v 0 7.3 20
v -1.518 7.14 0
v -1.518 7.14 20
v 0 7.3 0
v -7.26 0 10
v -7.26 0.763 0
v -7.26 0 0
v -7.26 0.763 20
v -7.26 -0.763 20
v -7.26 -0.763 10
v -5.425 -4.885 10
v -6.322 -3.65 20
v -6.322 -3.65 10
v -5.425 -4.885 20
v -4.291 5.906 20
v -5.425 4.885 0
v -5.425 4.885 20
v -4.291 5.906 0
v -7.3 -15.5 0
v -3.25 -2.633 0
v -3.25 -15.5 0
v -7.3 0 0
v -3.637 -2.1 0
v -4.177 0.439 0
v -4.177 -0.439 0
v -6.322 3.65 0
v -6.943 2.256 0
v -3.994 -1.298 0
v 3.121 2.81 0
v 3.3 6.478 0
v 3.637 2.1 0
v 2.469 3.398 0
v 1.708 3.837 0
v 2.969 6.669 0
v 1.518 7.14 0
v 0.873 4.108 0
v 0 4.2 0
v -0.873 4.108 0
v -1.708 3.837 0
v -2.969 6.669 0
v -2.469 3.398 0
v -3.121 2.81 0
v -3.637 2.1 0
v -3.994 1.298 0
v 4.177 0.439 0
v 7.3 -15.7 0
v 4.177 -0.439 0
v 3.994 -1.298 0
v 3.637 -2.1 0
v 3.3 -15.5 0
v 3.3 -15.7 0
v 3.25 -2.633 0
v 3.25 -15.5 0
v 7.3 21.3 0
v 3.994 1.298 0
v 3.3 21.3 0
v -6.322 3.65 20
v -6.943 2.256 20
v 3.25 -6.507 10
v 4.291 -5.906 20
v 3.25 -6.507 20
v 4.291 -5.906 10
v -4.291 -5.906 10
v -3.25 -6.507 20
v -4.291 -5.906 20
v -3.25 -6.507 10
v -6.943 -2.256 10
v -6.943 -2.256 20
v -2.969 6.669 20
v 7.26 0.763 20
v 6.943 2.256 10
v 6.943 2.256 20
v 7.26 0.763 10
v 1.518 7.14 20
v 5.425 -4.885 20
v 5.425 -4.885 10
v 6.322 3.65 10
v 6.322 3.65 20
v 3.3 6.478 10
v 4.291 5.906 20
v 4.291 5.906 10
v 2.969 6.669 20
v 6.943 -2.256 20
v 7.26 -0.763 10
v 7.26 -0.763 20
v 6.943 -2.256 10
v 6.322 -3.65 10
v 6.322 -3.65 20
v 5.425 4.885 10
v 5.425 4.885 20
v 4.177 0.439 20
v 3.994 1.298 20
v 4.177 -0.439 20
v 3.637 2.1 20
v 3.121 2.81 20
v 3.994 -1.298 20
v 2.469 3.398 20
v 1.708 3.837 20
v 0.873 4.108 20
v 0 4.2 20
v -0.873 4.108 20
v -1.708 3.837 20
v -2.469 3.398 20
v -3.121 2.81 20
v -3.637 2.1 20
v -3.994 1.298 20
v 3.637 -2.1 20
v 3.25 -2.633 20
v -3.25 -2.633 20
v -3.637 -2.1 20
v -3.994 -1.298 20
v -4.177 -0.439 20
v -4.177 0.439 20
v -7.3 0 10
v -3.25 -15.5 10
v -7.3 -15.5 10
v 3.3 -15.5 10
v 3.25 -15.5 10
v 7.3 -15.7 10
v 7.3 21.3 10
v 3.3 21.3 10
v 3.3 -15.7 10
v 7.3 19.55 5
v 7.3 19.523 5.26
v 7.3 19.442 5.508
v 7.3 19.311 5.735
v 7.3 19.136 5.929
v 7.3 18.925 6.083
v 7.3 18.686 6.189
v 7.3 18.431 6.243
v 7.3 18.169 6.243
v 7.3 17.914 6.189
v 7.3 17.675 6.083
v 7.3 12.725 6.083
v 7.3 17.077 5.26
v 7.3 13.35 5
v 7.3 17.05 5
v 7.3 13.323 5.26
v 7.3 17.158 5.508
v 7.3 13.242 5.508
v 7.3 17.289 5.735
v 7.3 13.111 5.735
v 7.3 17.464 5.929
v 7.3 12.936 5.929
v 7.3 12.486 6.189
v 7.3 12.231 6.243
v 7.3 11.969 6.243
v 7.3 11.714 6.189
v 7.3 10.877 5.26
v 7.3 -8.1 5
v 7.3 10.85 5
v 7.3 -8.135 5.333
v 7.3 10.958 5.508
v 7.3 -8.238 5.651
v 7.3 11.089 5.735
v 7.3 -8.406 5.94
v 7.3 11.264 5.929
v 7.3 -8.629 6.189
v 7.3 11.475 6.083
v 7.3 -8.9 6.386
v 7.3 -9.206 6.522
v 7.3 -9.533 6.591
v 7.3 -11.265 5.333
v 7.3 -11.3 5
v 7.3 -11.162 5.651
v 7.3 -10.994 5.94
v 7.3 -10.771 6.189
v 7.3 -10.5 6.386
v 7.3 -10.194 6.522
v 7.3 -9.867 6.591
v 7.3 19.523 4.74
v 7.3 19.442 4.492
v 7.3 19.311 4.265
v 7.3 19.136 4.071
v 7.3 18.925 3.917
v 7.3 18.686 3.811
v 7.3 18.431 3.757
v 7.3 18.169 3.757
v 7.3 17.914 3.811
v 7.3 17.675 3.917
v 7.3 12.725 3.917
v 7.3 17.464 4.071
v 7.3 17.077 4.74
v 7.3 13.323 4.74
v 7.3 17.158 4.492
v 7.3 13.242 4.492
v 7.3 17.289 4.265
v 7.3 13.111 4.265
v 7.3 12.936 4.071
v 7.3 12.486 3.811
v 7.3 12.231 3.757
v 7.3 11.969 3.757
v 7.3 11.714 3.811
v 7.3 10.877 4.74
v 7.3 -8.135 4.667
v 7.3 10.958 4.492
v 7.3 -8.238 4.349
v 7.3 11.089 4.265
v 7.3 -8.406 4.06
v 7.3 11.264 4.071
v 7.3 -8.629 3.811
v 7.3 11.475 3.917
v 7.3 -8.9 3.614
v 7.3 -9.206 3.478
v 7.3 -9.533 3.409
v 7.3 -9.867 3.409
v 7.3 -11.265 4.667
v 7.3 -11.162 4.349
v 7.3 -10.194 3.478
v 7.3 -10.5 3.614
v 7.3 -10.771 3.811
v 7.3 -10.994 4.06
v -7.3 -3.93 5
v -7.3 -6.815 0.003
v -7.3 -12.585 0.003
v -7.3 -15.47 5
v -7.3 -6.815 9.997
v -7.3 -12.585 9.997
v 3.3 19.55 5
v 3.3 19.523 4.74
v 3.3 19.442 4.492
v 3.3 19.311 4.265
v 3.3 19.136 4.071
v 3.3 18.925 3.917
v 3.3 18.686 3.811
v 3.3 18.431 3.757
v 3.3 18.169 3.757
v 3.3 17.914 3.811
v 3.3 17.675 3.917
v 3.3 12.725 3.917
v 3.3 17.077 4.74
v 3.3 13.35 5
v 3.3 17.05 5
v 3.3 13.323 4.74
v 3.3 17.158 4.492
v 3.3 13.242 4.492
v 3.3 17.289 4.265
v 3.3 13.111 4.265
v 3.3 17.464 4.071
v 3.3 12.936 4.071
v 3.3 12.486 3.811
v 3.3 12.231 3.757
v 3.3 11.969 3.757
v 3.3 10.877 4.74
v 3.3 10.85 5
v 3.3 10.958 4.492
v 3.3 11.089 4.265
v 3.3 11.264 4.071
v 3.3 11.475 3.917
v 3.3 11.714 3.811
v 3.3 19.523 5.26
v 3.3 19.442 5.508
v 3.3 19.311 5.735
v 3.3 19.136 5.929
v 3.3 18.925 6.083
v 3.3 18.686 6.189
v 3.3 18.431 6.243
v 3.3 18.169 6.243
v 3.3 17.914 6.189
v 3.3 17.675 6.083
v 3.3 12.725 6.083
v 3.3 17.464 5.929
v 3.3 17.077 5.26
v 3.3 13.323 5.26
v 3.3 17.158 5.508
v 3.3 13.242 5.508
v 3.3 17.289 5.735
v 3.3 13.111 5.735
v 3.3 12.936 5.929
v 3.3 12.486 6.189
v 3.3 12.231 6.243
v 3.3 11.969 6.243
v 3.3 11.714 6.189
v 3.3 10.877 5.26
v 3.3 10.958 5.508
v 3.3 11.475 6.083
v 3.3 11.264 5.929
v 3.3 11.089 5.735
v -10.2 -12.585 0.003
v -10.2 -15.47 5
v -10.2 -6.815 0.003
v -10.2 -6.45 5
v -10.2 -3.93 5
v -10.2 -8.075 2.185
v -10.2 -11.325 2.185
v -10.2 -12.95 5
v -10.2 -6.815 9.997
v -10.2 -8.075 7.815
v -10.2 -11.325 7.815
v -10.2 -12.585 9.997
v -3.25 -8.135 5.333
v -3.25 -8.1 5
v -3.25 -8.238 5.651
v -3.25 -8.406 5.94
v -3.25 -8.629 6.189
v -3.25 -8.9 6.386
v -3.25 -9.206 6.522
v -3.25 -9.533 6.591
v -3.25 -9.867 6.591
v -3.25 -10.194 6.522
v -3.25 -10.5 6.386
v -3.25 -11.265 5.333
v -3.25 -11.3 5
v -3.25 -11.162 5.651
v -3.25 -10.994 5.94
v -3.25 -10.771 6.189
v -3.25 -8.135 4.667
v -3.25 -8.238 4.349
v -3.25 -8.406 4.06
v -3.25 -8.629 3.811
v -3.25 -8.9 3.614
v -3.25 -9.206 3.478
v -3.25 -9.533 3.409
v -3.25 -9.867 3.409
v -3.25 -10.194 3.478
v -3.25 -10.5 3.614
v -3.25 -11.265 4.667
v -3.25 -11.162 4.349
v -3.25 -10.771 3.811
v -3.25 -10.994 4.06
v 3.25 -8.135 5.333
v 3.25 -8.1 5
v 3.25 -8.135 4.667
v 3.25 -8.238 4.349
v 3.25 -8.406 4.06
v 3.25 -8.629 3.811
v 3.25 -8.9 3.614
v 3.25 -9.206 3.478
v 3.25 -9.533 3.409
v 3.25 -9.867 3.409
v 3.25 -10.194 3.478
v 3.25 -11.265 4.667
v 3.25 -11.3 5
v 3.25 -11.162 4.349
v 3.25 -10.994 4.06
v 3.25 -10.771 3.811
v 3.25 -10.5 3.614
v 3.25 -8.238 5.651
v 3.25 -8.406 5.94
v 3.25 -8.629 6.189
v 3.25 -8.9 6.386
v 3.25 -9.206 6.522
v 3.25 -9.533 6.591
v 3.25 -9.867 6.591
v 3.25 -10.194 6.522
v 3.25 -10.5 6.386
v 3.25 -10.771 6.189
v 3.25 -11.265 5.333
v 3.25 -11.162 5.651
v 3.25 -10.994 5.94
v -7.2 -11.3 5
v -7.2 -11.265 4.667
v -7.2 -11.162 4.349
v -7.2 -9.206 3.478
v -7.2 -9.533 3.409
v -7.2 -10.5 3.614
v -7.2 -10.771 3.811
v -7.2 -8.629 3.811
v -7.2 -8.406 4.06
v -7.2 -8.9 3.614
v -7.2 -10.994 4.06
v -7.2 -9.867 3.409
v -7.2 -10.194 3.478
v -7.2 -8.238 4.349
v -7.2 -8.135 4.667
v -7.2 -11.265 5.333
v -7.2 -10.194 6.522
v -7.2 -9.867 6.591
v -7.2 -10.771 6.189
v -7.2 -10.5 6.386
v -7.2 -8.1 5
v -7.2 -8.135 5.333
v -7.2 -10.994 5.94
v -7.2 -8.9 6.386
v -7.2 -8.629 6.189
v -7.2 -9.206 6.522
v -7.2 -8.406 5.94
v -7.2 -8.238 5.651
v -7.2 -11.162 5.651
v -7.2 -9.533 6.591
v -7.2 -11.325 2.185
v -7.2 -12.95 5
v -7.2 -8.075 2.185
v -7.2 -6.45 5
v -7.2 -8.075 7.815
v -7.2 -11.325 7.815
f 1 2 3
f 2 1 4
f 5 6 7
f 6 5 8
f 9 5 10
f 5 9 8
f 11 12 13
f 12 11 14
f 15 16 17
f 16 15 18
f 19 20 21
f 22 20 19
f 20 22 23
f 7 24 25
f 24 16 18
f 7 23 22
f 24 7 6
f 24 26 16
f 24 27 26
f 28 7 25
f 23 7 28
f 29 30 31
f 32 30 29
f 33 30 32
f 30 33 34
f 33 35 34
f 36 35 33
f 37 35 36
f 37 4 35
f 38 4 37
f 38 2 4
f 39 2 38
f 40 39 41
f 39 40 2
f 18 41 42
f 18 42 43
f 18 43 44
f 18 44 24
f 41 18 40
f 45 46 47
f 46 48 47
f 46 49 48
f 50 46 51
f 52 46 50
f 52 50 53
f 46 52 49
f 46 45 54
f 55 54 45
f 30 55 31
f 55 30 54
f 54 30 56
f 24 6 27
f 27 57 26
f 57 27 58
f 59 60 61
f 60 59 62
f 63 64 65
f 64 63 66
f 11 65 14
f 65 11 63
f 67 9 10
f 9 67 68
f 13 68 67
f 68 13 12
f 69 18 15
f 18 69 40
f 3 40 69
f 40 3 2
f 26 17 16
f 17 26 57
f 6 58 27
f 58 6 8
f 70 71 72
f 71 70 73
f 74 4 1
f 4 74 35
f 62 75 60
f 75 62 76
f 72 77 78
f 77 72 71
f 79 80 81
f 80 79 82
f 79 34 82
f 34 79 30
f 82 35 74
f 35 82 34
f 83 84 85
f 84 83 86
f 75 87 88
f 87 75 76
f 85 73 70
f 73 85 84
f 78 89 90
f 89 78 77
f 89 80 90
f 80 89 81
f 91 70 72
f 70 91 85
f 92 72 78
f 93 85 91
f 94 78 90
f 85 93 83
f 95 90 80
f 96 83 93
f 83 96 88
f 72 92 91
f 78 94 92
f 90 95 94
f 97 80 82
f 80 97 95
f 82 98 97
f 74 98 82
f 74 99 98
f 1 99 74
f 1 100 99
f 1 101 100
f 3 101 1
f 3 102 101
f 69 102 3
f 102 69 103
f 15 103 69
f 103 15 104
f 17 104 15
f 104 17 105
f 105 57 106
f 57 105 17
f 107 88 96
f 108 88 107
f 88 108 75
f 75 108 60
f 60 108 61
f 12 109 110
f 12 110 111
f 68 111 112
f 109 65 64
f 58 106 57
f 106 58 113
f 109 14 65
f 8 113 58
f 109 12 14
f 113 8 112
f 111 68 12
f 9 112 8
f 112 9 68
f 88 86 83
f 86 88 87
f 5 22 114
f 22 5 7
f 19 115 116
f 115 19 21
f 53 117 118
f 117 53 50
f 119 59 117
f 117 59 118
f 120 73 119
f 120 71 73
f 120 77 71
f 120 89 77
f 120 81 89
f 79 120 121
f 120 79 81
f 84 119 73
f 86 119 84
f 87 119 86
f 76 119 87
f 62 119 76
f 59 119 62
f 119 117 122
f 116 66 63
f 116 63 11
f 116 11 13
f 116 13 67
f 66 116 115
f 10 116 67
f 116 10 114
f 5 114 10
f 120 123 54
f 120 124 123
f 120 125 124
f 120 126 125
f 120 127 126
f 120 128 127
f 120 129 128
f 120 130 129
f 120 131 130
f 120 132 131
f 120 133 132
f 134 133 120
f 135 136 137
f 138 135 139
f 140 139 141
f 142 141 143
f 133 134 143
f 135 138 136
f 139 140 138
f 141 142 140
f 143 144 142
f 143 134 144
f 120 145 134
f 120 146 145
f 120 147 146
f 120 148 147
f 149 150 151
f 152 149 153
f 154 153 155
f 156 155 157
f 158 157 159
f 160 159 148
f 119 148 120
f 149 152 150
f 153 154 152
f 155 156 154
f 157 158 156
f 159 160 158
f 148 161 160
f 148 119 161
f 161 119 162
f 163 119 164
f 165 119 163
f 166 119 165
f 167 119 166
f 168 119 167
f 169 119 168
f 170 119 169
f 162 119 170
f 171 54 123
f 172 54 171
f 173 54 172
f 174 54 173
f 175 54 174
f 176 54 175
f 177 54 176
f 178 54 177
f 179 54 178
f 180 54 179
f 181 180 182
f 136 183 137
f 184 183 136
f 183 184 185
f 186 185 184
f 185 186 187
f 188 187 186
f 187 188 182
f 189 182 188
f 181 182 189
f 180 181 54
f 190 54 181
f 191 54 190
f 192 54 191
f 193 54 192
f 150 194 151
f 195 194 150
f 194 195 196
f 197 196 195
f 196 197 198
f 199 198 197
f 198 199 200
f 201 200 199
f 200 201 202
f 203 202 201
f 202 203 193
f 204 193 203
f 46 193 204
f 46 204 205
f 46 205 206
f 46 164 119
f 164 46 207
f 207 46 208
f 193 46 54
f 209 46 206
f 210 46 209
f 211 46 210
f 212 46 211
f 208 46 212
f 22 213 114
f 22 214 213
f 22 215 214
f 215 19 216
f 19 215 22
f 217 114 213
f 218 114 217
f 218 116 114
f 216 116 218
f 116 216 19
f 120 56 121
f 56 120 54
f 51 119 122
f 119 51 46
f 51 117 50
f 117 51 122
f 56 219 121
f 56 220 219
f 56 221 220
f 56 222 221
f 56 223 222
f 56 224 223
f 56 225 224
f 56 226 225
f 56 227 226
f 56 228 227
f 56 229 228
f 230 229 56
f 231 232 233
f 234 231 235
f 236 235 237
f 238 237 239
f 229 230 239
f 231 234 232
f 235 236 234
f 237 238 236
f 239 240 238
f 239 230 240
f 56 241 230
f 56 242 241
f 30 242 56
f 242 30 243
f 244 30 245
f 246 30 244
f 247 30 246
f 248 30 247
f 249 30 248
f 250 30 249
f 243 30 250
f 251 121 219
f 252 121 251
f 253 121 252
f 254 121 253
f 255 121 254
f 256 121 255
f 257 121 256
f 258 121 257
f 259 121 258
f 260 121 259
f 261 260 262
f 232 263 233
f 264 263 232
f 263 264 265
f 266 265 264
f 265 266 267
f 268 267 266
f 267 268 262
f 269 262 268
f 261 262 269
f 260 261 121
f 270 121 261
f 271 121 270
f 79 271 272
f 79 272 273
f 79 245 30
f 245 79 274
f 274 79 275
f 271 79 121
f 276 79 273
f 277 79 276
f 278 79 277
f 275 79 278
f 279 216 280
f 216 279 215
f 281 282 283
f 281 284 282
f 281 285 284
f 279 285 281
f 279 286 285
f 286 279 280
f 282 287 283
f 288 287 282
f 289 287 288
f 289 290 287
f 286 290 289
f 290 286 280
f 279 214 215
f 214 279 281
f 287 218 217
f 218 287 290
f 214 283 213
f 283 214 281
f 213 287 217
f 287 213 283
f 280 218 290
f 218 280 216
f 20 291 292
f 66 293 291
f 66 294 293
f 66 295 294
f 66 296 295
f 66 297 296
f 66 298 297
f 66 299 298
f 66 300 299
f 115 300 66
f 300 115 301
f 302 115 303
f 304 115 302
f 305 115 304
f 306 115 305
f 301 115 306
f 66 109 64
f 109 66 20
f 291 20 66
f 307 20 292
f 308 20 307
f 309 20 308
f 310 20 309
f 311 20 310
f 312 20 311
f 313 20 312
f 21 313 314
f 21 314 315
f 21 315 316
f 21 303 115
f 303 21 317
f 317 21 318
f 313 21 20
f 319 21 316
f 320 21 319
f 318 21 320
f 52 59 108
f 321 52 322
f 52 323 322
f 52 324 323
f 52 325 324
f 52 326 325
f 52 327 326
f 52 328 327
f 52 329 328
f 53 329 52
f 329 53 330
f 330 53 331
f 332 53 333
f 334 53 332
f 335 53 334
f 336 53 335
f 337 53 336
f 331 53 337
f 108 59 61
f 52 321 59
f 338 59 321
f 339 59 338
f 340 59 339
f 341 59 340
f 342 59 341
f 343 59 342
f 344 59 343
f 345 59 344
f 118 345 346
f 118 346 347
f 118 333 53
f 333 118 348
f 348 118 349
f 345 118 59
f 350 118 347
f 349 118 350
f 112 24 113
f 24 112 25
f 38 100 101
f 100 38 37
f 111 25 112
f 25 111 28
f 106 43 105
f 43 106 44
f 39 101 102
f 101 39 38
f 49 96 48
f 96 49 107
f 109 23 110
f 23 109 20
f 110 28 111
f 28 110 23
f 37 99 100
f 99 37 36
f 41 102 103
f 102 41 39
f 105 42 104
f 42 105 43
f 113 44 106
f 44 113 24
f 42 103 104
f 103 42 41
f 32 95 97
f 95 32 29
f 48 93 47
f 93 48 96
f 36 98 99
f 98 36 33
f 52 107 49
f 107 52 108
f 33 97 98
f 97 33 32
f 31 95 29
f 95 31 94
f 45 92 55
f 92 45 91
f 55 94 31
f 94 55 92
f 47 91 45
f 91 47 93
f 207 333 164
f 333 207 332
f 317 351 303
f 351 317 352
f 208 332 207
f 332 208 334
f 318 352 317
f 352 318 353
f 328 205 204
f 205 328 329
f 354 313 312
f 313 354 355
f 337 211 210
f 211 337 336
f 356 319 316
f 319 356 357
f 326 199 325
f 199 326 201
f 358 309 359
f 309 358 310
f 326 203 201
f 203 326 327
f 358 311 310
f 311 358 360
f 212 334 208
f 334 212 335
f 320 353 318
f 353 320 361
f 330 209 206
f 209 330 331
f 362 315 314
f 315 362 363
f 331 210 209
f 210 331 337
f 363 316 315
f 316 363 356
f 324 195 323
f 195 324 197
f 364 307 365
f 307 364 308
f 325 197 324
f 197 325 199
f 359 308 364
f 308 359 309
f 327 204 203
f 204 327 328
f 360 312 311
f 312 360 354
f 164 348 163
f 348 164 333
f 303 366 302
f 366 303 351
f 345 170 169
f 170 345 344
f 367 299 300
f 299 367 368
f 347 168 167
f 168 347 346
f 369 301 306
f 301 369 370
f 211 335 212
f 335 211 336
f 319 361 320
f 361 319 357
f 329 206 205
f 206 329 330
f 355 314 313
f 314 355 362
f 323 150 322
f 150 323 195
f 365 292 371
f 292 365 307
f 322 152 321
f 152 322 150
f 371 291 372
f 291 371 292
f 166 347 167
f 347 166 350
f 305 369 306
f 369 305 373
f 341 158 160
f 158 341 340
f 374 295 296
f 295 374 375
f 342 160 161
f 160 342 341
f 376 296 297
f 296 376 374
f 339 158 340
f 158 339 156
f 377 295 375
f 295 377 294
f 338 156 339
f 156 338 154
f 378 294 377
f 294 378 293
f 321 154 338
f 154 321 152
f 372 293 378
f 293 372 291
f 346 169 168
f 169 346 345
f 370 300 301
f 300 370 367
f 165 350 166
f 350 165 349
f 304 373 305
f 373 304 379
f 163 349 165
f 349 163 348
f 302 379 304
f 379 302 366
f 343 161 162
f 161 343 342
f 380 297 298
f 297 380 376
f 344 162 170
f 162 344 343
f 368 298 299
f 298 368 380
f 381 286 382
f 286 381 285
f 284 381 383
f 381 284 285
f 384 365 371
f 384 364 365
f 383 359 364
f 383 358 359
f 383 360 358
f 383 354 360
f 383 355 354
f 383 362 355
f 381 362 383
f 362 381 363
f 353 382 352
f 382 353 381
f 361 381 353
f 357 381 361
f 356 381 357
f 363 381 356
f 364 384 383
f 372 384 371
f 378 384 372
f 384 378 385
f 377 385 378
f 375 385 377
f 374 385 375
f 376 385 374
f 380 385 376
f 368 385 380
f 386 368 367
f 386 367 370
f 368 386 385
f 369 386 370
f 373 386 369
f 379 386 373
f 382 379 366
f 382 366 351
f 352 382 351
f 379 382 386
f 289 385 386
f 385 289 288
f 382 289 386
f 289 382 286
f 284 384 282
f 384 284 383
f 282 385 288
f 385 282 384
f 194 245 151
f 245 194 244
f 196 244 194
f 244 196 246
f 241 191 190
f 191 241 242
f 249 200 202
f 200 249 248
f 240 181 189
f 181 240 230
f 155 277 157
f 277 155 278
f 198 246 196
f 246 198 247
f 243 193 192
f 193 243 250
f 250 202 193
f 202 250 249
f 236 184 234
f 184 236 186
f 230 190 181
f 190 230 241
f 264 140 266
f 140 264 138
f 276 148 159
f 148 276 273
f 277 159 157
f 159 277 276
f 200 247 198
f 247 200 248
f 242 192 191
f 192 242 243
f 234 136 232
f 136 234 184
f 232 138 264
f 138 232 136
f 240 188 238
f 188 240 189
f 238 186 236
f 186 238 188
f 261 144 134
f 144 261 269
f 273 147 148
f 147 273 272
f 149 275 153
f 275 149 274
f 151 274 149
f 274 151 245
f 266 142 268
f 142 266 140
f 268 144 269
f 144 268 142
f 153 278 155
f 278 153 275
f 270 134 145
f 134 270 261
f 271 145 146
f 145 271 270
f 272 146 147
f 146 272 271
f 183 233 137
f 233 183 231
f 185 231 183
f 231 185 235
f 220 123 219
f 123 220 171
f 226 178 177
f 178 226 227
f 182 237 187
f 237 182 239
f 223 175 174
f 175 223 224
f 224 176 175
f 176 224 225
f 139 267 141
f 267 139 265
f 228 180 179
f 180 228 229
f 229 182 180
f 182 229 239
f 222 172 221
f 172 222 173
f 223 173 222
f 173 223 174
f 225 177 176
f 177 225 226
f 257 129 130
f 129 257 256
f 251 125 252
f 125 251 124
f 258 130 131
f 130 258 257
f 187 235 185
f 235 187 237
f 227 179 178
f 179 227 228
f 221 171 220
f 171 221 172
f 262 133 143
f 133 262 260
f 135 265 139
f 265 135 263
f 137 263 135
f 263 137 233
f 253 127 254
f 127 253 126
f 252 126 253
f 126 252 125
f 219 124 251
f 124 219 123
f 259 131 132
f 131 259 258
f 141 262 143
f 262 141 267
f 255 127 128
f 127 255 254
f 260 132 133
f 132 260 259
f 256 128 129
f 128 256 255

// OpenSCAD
// file: config.scad
/**
 * Глобальный конфигурационный файл
 */
// качество цилиндров
$fn=30;

// избегание совпадения граней
DELTA=0.1;

// толщина рамы
FRAME=15;
// main file
include <config.scad>

// наружный диаметр направляющей
d1=8;
// допуск на радиус направляющей
// (расстояние между стенками направляющей и детали)
delta1=0.2;
// диаметр М3
d2=3.2;
// диаметр гайки М3
d3=6.1;
// внешний диаметр концевика
d4=d1/2+3.3;
// вырез концевика
h1=d1-1.5;

module frame_part02() {
rotate([180,0,-90])
translate([-d4,-d4,-10])
difference(){
	union(){
		translate([d4,d4,-10]) cylinder(20,r=d4);
		translate([d4,0,0]) cube([15.5,d4*2,10]);
		translate([-14,0,0]) cube([37,4,10]);
		translate([17,17.5,5]) rotate([90,0,0]) cylinder(5,r=5.77,$fn=6);
	}
	translate([9,d4-h1/2,-10.1]) cube([18,h1,21]);
	translate([d4, d4,-10.1]) cylinder(21, r=d1/2+delta1);

	//Securing hole
	translate([17,17,5]) rotate([90,0,0]) cylinder(20,r=d2/2);
	translate([17,19.5,5]) rotate([90,0,0]) cylinder(5,r=d3/2+0.2,$fn=6);

	translate([-4.8,17,5]) rotate([90,0,0]) cylinder(20,r=2.5/2);
	translate([-11,17,5]) rotate([90,0,0]) cylinder(20,r=2.5/2);
}
}
frame_part02();
